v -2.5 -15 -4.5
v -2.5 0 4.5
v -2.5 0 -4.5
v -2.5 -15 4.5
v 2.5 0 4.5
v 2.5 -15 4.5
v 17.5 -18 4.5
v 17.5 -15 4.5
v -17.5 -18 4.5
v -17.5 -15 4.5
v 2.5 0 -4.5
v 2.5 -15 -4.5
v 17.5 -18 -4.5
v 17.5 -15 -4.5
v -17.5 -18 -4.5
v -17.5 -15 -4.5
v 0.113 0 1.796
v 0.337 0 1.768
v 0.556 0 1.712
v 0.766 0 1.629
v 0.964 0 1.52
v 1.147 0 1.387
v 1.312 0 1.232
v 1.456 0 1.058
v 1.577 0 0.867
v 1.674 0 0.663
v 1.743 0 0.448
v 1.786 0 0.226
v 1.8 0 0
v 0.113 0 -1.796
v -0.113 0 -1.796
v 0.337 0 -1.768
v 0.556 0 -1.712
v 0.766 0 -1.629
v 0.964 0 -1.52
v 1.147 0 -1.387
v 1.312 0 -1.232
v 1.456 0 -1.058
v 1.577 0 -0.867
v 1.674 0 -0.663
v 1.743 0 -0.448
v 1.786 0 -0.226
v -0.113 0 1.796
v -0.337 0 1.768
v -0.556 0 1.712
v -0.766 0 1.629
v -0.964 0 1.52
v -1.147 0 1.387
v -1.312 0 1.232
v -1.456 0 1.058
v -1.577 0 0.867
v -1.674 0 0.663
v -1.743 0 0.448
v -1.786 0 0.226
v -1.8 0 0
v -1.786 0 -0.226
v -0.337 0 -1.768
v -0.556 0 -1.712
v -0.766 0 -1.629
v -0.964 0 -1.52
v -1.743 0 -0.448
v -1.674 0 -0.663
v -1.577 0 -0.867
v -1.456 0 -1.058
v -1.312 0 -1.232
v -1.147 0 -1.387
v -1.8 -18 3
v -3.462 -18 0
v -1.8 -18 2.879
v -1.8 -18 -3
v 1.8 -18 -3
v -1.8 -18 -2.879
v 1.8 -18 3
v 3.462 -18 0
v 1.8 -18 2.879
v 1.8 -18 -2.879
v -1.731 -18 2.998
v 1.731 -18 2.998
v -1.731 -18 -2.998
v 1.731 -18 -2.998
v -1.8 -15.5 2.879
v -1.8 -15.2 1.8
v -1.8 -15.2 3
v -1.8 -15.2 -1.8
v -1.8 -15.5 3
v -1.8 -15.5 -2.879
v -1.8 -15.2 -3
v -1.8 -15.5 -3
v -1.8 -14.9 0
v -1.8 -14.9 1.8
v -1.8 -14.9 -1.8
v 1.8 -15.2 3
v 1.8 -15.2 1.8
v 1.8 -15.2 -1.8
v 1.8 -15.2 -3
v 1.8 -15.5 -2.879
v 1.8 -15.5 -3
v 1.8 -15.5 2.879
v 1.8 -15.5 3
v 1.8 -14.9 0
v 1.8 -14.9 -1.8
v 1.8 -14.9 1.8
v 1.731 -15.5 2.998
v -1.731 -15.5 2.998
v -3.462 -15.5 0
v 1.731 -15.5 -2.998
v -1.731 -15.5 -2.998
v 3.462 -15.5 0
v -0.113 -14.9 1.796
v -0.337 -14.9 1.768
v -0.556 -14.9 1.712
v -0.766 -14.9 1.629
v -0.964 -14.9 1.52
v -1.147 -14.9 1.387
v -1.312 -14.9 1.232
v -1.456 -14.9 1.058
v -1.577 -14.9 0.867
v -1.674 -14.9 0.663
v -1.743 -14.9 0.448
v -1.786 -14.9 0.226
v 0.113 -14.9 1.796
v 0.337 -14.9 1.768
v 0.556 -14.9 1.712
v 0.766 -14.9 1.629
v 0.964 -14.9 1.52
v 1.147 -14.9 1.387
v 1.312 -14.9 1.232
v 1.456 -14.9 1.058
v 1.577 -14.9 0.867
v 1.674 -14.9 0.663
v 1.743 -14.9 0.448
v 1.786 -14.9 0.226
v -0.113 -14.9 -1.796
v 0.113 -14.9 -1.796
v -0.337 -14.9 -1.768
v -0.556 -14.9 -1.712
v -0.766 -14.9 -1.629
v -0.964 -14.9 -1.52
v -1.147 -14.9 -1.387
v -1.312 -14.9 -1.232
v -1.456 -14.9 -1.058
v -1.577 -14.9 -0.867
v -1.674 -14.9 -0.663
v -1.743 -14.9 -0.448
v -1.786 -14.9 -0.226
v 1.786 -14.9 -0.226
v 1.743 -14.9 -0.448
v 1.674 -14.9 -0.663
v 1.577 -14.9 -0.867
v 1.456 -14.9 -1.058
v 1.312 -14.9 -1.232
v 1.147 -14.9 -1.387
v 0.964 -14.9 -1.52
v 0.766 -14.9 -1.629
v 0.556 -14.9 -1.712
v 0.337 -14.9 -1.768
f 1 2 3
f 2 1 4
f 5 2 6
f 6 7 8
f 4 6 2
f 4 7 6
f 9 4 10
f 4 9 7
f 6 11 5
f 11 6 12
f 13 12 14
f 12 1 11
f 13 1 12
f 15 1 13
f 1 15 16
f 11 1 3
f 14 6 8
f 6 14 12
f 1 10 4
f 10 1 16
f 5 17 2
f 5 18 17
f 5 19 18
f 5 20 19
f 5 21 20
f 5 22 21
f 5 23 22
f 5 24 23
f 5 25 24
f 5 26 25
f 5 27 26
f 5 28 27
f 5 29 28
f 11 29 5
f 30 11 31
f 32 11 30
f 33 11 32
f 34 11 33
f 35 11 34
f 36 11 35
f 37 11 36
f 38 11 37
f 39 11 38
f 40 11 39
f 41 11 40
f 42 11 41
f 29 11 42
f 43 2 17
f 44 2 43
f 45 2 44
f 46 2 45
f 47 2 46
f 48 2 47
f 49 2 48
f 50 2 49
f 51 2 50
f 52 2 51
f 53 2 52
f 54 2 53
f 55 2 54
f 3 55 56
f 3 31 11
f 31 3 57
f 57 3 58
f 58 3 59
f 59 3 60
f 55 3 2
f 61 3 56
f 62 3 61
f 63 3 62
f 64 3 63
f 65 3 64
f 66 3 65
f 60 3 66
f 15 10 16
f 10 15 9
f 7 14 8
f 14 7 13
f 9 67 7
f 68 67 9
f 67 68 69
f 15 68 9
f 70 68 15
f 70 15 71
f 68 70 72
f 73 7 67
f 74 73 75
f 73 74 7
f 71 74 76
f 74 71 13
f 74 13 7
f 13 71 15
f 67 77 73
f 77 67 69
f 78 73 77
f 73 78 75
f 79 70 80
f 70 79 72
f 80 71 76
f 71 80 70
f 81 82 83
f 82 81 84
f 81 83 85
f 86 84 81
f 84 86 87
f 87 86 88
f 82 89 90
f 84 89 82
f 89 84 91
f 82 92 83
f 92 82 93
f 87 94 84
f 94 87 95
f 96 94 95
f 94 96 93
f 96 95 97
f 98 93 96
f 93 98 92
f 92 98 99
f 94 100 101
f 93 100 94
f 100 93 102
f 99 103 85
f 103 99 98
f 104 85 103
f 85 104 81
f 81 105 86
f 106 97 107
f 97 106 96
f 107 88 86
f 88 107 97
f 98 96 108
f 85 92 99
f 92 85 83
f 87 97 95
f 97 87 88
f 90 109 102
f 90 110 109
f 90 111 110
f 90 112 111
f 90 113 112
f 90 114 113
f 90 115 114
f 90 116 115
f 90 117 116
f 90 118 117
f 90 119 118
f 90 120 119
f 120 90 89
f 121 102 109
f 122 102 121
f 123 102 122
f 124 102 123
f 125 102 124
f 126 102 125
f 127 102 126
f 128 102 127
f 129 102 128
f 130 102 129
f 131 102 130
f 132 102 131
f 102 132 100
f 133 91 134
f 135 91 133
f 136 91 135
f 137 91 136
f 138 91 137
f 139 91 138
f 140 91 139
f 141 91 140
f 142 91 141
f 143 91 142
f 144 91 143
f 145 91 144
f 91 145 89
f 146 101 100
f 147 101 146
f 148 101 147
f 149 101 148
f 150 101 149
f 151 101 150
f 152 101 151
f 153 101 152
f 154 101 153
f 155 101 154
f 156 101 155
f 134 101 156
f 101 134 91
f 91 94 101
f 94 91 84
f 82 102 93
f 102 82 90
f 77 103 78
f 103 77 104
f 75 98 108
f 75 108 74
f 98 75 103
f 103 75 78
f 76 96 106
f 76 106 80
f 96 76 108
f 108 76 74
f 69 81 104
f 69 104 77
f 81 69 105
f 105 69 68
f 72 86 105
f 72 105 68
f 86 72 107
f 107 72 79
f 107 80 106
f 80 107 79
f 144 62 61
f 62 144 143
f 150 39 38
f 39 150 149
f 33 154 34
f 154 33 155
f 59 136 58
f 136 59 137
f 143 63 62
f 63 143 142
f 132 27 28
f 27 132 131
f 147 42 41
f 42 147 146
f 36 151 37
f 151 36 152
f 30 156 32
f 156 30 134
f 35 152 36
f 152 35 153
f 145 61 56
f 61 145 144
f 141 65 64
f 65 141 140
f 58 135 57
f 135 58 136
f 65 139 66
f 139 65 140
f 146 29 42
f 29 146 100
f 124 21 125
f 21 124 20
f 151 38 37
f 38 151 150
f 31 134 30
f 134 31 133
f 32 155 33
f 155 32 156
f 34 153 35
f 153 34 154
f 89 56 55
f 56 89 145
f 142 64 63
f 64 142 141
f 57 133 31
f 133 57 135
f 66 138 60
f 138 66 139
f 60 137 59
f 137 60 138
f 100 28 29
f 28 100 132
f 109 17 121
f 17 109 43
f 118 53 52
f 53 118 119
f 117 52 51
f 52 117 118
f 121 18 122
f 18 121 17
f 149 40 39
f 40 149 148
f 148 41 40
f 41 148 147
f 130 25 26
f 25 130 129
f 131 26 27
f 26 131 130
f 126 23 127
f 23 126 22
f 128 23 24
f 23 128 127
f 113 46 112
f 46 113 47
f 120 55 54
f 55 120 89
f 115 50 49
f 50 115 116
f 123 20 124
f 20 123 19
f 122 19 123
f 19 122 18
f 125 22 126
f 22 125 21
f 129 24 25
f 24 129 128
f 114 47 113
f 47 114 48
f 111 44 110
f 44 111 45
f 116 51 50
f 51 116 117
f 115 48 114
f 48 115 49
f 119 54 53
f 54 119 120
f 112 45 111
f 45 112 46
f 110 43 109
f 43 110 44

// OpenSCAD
$fn = 50;


difference() {
	union() {
		translate(v = [-2.5000000000, -15.0000000000, -4.5000000000]) {
			cube(size = [5, 15, 9]);
		}
		translate(v = [-17.5000000000, -18.0000000000, -4.5000000000]) {
			cube(size = [35, 3, 9]);
		}
	}
	union() {
		translate(v = [0, 3, 0]) {
			rotate(a = [-90, 0, 0]) {
				difference() {
					union() {
						translate(v = [0, 0, -21.0000000000]) {
							rotate(a = [0, 0, 0]) {
								difference() {
									union() {
										translate(v = [-1.8000000000, -3.0000000000, -0.3000000000]) {
											cube(size = [3.6000000000, 6.0000000000, 0.3000000000]);
										}
										translate(v = [-1.8000000000, -1.8000000000, -0.6000000000]) {
											cube(size = [3.6000000000, 3.6000000000, 0.3000000000]);
										}
										translate(v = [-1.8000000000, -3.0000000000, 2.5000000000]) {
											cube(size = [3.6000000000, 6.0000000000, 0.3000000000]);
										}
										translate(v = [-1.8000000000, -1.8000000000, 2.8000000000]) {
											cube(size = [3.6000000000, 3.6000000000, 0.3000000000]);
										}
										linear_extrude(height = 2.5000000000) {
											polygon(points = [[3.4620000000, 0.0000000000], [1.7310000000, 2.9981799479], [-1.7310000000, 2.9981799479], [-3.4620000000, 0.0000000000], [-1.7310000000, -2.9981799479], [1.7310000000, -2.9981799479]]);
										}
										translate(v = [-1.8000000000, -3.0000000000, -0.3000000000]) {
											cube(size = [3.6000000000, 6.0000000000, 0.3000000000]);
										}
										translate(v = [-1.8000000000, -1.8000000000, -0.6000000000]) {
											cube(size = [3.6000000000, 3.6000000000, 0.3000000000]);
										}
										translate(v = [-1.8000000000, -3.0000000000, 2.5000000000]) {
											cube(size = [3.6000000000, 6.0000000000, 0.3000000000]);
										}
										translate(v = [-1.8000000000, -1.8000000000, 2.8000000000]) {
											cube(size = [3.6000000000, 3.6000000000, 0.3000000000]);
										}
										translate(v = [-1.8000000000, -3.0000000000, -0.3000000000]) {
											cube(size = [3.6000000000, 6.0000000000, 0.3000000000]);
										}
										translate(v = [-1.8000000000, -1.8000000000, -0.6000000000]) {
											cube(size = [3.6000000000, 3.6000000000, 0.3000000000]);
										}
										translate(v = [-1.8000000000, -3.0000000000, 2.5000000000]) {
											cube(size = [3.6000000000, 6.0000000000, 0.3000000000]);
										}
										translate(v = [-1.8000000000, -1.8000000000, 2.8000000000]) {
											cube(size = [3.6000000000, 3.6000000000, 0.3000000000]);
										}
									}
									union();
								}
							}
						}
						translate(v = [0, 0, -21.0000000000]) {
							rotate(a = [0, 0, 0]) {
								difference() {
									union() {
										translate(v = [-1.8000000000, -3.0000000000, -0.3000000000]) {
											cube(size = [3.6000000000, 6.0000000000, 0.3000000000]);
										}
										translate(v = [-1.8000000000, -1.8000000000, -0.6000000000]) {
											cube(size = [3.6000000000, 3.6000000000, 0.3000000000]);
										}
										translate(v = [-1.8000000000, -3.0000000000, 2.5000000000]) {
											cube(size = [3.6000000000, 6.0000000000, 0.3000000000]);
										}
										translate(v = [-1.8000000000, -1.8000000000, 2.8000000000]) {
											cube(size = [3.6000000000, 3.6000000000, 0.3000000000]);
										}
										linear_extrude(height = 2.5000000000) {
											polygon(points = [[3.4620000000, 0.0000000000], [1.7310000000, 2.9981799479], [-1.7310000000, 2.9981799479], [-3.4620000000, 0.0000000000], [-1.7310000000, -2.9981799479], [1.7310000000, -2.9981799479]]);
										}
										translate(v = [-1.8000000000, -3.0000000000, -0.3000000000]) {
											cube(size = [3.6000000000, 6.0000000000, 0.3000000000]);
										}
										translate(v = [-1.8000000000, -1.8000000000, -0.6000000000]) {
											cube(size = [3.6000000000, 3.6000000000, 0.3000000000]);
										}
										translate(v = [-1.8000000000, -3.0000000000, 2.5000000000]) {
											cube(size = [3.6000000000, 6.0000000000, 0.3000000000]);
										}
										translate(v = [-1.8000000000, -1.8000000000, 2.8000000000]) {
											cube(size = [3.6000000000, 3.6000000000, 0.3000000000]);
										}
										translate(v = [-1.8000000000, -3.0000000000, -0.3000000000]) {
											cube(size = [3.6000000000, 6.0000000000, 0.3000000000]);
										}
										translate(v = [-1.8000000000, -1.8000000000, -0.6000000000]) {
											cube(size = [3.6000000000, 3.6000000000, 0.3000000000]);
										}
										translate(v = [-1.8000000000, -3.0000000000, 2.5000000000]) {
											cube(size = [3.6000000000, 6.0000000000, 0.3000000000]);
										}
										translate(v = [-1.8000000000, -1.8000000000, 2.8000000000]) {
											cube(size = [3.6000000000, 3.6000000000, 0.3000000000]);
										}
									}
									union();
								}
							}
						}
						translate(v = [0, 0, -21.0000000000]) {
							rotate(a = [0, 0, 0]) {
								difference() {
									union() {
										translate(v = [-1.8000000000, -3.0000000000, -0.3000000000]) {
											cube(size = [3.6000000000, 6.0000000000, 0.3000000000]);
										}
										translate(v = [-1.8000000000, -1.8000000000, -0.6000000000]) {
											cube(size = [3.6000000000, 3.6000000000, 0.3000000000]);
										}
										translate(v = [-1.8000000000, -3.0000000000, 2.5000000000]) {
											cube(size = [3.6000000000, 6.0000000000, 0.3000000000]);
										}
										translate(v = [-1.8000000000, -1.8000000000, 2.8000000000]) {
											cube(size = [3.6000000000, 3.6000000000, 0.3000000000]);
										}
										linear_extrude(height = 2.5000000000) {
											polygon(points = [[3.4620000000, 0.0000000000], [1.7310000000, 2.9981799479], [-1.7310000000, 2.9981799479], [-3.4620000000, 0.0000000000], [-1.7310000000, -2.9981799479], [1.7310000000, -2.9981799479]]);
										}
										translate(v = [-1.8000000000, -3.0000000000, -0.3000000000]) {
											cube(size = [3.6000000000, 6.0000000000, 0.3000000000]);
										}
										translate(v = [-1.8000000000, -1.8000000000, -0.6000000000]) {
											cube(size = [3.6000000000, 3.6000000000, 0.3000000000]);
										}
										translate(v = [-1.8000000000, -3.0000000000, 2.5000000000]) {
											cube(size = [3.6000000000, 6.0000000000, 0.3000000000]);
										}
										translate(v = [-1.8000000000, -1.8000000000, 2.8000000000]) {
											cube(size = [3.6000000000, 3.6000000000, 0.3000000000]);
										}
										translate(v = [-1.8000000000, -3.0000000000, -0.3000000000]) {
											cube(size = [3.6000000000, 6.0000000000, 0.3000000000]);
										}
										translate(v = [-1.8000000000, -1.8000000000, -0.6000000000]) {
											cube(size = [3.6000000000, 3.6000000000, 0.3000000000]);
										}
										translate(v = [-1.8000000000, -3.0000000000, 2.5000000000]) {
											cube(size = [3.6000000000, 6.0000000000, 0.3000000000]);
										}
										translate(v = [-1.8000000000, -1.8000000000, 2.8000000000]) {
											cube(size = [3.6000000000, 3.6000000000, 0.3000000000]);
										}
									}
									union();
								}
							}
						}
						translate(v = [0, 0, -21.0000000000]) {
							cylinder(h = 21, r = 1.5000000000);
						}
						translate(v = [0, 0, -1.9000000000]) {
							cylinder(h = 1.9000000000, r1 = 1.8000000000, r2 = 3.6000000000);
						}
						translate(v = [0, 0, -21.0000000000]) {
							cylinder(h = 21, r = 1.8000000000);
						}
						translate(v = [0, 0, -21.0000000000]) {
							cylinder(h = 21, r = 1.5000000000);
						}
					}
					union();
				}
			}
		}
	}
}
